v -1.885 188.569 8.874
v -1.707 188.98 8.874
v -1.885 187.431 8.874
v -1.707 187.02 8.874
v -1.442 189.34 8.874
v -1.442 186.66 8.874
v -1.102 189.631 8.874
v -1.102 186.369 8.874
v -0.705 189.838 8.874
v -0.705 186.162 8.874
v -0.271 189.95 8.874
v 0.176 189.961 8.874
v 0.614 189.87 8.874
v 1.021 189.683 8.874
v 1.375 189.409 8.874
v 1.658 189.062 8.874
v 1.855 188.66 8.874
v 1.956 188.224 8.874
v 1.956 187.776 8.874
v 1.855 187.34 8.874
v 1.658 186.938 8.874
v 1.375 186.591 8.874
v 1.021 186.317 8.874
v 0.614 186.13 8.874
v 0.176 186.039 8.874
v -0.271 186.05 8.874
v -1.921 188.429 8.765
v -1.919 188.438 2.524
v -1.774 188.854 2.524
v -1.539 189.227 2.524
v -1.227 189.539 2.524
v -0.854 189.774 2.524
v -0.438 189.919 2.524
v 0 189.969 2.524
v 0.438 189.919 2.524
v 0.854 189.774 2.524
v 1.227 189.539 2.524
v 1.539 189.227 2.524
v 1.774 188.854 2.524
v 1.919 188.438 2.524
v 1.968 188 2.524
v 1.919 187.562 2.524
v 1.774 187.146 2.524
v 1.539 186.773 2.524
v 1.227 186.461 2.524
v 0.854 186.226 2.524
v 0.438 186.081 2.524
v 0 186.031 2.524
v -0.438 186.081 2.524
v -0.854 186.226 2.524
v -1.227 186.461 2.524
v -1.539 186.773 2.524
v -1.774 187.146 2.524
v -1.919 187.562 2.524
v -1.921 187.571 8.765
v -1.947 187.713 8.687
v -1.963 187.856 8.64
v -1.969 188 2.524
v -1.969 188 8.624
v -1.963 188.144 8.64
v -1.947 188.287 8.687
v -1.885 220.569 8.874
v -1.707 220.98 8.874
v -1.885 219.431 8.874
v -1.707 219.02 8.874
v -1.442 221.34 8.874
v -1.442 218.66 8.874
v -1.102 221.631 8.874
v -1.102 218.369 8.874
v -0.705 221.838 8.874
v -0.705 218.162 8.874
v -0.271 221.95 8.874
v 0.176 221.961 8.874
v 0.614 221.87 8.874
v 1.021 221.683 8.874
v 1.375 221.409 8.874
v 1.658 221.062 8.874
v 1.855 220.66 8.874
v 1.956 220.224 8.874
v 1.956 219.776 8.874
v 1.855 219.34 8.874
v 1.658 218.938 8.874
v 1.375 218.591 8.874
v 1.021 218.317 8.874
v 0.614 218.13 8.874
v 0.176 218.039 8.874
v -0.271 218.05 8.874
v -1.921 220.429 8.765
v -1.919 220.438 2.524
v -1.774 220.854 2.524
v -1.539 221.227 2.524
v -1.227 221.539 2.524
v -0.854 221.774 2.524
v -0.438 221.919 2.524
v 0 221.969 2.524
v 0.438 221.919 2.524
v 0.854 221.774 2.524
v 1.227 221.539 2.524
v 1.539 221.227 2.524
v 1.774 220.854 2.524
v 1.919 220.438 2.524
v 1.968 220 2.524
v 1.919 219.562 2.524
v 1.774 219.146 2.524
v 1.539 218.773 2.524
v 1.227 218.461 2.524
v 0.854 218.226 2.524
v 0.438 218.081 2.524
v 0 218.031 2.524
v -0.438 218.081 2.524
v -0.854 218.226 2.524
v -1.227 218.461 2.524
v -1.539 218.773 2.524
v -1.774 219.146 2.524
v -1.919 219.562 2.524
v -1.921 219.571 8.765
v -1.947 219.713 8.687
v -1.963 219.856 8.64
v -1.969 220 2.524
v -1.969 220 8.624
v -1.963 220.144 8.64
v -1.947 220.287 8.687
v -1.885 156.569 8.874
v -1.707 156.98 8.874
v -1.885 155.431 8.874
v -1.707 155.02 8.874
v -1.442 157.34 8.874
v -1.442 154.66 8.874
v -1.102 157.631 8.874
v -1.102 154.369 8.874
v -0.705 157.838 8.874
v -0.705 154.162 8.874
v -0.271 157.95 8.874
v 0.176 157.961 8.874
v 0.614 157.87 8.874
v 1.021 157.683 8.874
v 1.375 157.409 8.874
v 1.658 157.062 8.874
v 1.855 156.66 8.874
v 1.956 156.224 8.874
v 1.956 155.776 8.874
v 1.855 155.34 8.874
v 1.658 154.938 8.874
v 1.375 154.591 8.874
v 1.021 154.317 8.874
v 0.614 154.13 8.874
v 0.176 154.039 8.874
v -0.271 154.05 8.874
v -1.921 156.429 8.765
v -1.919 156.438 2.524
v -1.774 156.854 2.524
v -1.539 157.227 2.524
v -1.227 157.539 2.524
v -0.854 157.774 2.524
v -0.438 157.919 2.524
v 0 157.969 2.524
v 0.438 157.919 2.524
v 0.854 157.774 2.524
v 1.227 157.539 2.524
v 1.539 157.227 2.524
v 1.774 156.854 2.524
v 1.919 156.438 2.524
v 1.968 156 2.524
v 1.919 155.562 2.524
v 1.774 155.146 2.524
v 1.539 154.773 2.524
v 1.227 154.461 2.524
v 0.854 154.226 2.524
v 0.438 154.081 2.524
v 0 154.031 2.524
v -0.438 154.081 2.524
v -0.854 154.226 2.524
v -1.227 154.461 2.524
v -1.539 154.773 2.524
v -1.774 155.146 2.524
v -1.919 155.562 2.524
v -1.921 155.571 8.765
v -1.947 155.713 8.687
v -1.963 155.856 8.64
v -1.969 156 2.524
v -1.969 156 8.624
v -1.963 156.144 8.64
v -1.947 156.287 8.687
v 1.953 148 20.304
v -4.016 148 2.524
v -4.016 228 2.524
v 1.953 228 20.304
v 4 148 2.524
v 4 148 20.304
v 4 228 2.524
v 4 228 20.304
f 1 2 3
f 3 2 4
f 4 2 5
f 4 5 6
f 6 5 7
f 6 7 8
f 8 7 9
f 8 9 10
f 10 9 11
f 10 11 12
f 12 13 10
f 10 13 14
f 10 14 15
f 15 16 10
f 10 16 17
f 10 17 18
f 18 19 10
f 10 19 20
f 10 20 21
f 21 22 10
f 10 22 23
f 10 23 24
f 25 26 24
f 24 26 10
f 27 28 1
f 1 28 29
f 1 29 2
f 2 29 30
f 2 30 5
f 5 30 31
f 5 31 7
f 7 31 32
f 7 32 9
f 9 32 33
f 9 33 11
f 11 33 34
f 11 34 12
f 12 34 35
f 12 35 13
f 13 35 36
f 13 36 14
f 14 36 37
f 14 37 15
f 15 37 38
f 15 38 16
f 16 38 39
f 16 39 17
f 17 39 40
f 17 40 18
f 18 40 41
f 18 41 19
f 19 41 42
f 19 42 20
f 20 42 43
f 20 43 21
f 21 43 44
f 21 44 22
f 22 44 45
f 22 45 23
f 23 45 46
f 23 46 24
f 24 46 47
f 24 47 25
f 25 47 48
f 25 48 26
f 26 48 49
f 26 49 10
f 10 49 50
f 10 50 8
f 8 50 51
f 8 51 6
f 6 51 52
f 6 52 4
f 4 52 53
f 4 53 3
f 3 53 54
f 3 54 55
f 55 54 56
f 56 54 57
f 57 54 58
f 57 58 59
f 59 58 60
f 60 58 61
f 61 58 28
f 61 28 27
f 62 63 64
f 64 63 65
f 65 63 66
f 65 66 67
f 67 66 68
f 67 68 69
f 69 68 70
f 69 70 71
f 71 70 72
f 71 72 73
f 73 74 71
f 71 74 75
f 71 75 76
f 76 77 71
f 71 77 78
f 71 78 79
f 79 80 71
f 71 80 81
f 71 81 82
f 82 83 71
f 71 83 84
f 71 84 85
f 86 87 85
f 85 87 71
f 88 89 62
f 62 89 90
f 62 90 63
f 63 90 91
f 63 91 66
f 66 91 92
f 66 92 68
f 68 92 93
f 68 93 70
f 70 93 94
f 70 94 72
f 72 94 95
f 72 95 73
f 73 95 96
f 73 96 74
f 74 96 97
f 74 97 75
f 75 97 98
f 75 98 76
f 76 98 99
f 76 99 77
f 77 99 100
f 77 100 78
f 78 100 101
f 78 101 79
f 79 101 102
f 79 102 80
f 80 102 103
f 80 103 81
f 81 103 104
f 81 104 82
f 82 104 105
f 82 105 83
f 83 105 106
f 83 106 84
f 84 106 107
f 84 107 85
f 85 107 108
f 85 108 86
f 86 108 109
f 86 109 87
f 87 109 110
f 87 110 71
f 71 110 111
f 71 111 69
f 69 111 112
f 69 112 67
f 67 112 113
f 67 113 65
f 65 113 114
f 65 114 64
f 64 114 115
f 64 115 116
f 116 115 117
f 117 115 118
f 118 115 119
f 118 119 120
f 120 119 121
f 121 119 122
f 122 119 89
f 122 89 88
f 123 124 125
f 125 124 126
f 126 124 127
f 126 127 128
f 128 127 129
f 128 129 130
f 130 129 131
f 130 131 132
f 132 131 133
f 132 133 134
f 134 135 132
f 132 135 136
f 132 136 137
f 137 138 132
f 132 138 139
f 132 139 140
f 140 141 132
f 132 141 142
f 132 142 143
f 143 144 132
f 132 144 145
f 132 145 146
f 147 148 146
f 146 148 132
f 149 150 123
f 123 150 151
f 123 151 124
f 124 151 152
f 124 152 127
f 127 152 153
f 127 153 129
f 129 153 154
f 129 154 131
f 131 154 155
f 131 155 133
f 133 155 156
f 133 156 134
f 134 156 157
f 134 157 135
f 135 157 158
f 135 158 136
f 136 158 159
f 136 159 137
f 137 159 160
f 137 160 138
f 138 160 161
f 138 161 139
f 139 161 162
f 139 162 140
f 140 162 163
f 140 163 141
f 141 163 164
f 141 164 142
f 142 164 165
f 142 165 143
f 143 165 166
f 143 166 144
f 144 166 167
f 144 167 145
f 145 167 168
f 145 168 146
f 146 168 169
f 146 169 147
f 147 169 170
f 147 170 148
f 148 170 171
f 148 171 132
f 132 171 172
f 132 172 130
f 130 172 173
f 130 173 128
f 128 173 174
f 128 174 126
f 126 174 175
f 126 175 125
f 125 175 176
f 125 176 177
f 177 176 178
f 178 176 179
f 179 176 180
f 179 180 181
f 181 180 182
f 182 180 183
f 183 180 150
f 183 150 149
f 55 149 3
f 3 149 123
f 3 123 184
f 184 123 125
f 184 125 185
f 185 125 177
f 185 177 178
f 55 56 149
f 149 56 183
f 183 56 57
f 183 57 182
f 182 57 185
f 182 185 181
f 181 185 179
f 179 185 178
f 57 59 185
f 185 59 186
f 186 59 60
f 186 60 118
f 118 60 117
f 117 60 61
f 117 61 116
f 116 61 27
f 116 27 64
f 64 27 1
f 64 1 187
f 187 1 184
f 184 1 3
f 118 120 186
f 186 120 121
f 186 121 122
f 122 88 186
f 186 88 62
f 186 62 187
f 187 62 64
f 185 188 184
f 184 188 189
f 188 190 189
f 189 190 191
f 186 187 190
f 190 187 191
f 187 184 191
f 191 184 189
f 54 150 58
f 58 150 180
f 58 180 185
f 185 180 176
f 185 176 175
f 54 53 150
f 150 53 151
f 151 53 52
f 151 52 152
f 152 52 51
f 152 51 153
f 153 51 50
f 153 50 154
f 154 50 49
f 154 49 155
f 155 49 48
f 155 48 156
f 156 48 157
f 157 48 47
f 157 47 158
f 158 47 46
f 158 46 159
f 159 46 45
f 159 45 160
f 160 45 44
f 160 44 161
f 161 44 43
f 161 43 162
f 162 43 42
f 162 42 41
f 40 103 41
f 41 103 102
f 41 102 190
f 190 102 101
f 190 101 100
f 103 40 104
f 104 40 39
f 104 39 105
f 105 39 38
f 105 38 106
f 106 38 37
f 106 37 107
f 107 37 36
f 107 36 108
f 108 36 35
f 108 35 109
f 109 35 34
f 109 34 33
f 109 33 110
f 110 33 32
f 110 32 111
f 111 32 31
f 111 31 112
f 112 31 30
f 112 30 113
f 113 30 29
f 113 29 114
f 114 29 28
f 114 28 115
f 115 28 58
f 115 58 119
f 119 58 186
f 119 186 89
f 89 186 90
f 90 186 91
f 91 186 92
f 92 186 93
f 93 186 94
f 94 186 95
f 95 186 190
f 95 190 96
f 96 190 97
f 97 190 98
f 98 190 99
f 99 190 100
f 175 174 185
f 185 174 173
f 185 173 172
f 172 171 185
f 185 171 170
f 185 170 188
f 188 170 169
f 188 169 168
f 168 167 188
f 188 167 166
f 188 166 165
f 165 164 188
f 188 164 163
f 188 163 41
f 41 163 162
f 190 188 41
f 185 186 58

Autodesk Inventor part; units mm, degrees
ref_plane "YZ Plane" through (0, 0, 0) normal (1, 0, 0) x (0, 1, 0)
ref_plane "XZ Plane" through (0, 0, 0) normal (0, 1, 0) x (-1, 0, 0)
ref_plane "Work Plane1" through (0, 0, 2.5241) normal (0, 0, 1) x (1, 0, 0)
sketch "Sketch1" plane through (0, 0, 2.5241) normal (0, 0, 1) x (1, 0, 0)
  line L0 (16, 228) -> (4, 228) construction
  line L1 (4, 148) -> (-8, 148) construction
  line L2 (4, 228) -> (-4.0164, 228)
  line L3 (-4.0164, 228) -> (-4.0164, 148)
  line L4 (-4.0164, 148) -> (4, 148)
  line L5 (4, 148) -> (4, 228)
  point P0 (0, 0)
extrude "Extrusion1" add sketch "Sketch1" along normal blind 17.78
sketch "Sketch2" plane through (-4.0164, 148, 2.5241) normal (0, -1, 0) x (1, 0, 0)
  line L0 (0, 17.78) -> (8.0164, 17.78) construction
  line L1 (0, 0) -> (0, 17.78) construction
  line L2 (0, 0) -> (0, 17.78) projected
  line L3 (8.0164, 17.78) -> (0, 17.78) projected
  line L4 (0, 0) -> (0, 17.78)
  line L5 (0, 17.78) -> (5.969, 17.78)
  line L6 (5.969, 17.78) -> (0, 0)
  point P0 (4.0164, -2.5241)
  dimension "d2" = 5.969
extrude "Extrusion2" cut sketch "Sketch2" against normal up to surface (80 mm away)
sketch "Sketch3" plane through (0, 0, 2.5241) normal (0, 0, -1) x (-1, 0, 0)
  circle A0 centre (0, 220) radius 2 construction
  circle A1 centre (0, 156) radius 2 construction
  circle A2 centre (0, 188) radius 2 construction
  point P0 (0, 0)
hole "Hole1" at (0, 220, 2.5241) at (0, 188, 2.5241) at (0, 156, 2.5241) direction (0, 0, 1) diameter 3.937 depth 6.35
properties part number "EjectionRamp"
